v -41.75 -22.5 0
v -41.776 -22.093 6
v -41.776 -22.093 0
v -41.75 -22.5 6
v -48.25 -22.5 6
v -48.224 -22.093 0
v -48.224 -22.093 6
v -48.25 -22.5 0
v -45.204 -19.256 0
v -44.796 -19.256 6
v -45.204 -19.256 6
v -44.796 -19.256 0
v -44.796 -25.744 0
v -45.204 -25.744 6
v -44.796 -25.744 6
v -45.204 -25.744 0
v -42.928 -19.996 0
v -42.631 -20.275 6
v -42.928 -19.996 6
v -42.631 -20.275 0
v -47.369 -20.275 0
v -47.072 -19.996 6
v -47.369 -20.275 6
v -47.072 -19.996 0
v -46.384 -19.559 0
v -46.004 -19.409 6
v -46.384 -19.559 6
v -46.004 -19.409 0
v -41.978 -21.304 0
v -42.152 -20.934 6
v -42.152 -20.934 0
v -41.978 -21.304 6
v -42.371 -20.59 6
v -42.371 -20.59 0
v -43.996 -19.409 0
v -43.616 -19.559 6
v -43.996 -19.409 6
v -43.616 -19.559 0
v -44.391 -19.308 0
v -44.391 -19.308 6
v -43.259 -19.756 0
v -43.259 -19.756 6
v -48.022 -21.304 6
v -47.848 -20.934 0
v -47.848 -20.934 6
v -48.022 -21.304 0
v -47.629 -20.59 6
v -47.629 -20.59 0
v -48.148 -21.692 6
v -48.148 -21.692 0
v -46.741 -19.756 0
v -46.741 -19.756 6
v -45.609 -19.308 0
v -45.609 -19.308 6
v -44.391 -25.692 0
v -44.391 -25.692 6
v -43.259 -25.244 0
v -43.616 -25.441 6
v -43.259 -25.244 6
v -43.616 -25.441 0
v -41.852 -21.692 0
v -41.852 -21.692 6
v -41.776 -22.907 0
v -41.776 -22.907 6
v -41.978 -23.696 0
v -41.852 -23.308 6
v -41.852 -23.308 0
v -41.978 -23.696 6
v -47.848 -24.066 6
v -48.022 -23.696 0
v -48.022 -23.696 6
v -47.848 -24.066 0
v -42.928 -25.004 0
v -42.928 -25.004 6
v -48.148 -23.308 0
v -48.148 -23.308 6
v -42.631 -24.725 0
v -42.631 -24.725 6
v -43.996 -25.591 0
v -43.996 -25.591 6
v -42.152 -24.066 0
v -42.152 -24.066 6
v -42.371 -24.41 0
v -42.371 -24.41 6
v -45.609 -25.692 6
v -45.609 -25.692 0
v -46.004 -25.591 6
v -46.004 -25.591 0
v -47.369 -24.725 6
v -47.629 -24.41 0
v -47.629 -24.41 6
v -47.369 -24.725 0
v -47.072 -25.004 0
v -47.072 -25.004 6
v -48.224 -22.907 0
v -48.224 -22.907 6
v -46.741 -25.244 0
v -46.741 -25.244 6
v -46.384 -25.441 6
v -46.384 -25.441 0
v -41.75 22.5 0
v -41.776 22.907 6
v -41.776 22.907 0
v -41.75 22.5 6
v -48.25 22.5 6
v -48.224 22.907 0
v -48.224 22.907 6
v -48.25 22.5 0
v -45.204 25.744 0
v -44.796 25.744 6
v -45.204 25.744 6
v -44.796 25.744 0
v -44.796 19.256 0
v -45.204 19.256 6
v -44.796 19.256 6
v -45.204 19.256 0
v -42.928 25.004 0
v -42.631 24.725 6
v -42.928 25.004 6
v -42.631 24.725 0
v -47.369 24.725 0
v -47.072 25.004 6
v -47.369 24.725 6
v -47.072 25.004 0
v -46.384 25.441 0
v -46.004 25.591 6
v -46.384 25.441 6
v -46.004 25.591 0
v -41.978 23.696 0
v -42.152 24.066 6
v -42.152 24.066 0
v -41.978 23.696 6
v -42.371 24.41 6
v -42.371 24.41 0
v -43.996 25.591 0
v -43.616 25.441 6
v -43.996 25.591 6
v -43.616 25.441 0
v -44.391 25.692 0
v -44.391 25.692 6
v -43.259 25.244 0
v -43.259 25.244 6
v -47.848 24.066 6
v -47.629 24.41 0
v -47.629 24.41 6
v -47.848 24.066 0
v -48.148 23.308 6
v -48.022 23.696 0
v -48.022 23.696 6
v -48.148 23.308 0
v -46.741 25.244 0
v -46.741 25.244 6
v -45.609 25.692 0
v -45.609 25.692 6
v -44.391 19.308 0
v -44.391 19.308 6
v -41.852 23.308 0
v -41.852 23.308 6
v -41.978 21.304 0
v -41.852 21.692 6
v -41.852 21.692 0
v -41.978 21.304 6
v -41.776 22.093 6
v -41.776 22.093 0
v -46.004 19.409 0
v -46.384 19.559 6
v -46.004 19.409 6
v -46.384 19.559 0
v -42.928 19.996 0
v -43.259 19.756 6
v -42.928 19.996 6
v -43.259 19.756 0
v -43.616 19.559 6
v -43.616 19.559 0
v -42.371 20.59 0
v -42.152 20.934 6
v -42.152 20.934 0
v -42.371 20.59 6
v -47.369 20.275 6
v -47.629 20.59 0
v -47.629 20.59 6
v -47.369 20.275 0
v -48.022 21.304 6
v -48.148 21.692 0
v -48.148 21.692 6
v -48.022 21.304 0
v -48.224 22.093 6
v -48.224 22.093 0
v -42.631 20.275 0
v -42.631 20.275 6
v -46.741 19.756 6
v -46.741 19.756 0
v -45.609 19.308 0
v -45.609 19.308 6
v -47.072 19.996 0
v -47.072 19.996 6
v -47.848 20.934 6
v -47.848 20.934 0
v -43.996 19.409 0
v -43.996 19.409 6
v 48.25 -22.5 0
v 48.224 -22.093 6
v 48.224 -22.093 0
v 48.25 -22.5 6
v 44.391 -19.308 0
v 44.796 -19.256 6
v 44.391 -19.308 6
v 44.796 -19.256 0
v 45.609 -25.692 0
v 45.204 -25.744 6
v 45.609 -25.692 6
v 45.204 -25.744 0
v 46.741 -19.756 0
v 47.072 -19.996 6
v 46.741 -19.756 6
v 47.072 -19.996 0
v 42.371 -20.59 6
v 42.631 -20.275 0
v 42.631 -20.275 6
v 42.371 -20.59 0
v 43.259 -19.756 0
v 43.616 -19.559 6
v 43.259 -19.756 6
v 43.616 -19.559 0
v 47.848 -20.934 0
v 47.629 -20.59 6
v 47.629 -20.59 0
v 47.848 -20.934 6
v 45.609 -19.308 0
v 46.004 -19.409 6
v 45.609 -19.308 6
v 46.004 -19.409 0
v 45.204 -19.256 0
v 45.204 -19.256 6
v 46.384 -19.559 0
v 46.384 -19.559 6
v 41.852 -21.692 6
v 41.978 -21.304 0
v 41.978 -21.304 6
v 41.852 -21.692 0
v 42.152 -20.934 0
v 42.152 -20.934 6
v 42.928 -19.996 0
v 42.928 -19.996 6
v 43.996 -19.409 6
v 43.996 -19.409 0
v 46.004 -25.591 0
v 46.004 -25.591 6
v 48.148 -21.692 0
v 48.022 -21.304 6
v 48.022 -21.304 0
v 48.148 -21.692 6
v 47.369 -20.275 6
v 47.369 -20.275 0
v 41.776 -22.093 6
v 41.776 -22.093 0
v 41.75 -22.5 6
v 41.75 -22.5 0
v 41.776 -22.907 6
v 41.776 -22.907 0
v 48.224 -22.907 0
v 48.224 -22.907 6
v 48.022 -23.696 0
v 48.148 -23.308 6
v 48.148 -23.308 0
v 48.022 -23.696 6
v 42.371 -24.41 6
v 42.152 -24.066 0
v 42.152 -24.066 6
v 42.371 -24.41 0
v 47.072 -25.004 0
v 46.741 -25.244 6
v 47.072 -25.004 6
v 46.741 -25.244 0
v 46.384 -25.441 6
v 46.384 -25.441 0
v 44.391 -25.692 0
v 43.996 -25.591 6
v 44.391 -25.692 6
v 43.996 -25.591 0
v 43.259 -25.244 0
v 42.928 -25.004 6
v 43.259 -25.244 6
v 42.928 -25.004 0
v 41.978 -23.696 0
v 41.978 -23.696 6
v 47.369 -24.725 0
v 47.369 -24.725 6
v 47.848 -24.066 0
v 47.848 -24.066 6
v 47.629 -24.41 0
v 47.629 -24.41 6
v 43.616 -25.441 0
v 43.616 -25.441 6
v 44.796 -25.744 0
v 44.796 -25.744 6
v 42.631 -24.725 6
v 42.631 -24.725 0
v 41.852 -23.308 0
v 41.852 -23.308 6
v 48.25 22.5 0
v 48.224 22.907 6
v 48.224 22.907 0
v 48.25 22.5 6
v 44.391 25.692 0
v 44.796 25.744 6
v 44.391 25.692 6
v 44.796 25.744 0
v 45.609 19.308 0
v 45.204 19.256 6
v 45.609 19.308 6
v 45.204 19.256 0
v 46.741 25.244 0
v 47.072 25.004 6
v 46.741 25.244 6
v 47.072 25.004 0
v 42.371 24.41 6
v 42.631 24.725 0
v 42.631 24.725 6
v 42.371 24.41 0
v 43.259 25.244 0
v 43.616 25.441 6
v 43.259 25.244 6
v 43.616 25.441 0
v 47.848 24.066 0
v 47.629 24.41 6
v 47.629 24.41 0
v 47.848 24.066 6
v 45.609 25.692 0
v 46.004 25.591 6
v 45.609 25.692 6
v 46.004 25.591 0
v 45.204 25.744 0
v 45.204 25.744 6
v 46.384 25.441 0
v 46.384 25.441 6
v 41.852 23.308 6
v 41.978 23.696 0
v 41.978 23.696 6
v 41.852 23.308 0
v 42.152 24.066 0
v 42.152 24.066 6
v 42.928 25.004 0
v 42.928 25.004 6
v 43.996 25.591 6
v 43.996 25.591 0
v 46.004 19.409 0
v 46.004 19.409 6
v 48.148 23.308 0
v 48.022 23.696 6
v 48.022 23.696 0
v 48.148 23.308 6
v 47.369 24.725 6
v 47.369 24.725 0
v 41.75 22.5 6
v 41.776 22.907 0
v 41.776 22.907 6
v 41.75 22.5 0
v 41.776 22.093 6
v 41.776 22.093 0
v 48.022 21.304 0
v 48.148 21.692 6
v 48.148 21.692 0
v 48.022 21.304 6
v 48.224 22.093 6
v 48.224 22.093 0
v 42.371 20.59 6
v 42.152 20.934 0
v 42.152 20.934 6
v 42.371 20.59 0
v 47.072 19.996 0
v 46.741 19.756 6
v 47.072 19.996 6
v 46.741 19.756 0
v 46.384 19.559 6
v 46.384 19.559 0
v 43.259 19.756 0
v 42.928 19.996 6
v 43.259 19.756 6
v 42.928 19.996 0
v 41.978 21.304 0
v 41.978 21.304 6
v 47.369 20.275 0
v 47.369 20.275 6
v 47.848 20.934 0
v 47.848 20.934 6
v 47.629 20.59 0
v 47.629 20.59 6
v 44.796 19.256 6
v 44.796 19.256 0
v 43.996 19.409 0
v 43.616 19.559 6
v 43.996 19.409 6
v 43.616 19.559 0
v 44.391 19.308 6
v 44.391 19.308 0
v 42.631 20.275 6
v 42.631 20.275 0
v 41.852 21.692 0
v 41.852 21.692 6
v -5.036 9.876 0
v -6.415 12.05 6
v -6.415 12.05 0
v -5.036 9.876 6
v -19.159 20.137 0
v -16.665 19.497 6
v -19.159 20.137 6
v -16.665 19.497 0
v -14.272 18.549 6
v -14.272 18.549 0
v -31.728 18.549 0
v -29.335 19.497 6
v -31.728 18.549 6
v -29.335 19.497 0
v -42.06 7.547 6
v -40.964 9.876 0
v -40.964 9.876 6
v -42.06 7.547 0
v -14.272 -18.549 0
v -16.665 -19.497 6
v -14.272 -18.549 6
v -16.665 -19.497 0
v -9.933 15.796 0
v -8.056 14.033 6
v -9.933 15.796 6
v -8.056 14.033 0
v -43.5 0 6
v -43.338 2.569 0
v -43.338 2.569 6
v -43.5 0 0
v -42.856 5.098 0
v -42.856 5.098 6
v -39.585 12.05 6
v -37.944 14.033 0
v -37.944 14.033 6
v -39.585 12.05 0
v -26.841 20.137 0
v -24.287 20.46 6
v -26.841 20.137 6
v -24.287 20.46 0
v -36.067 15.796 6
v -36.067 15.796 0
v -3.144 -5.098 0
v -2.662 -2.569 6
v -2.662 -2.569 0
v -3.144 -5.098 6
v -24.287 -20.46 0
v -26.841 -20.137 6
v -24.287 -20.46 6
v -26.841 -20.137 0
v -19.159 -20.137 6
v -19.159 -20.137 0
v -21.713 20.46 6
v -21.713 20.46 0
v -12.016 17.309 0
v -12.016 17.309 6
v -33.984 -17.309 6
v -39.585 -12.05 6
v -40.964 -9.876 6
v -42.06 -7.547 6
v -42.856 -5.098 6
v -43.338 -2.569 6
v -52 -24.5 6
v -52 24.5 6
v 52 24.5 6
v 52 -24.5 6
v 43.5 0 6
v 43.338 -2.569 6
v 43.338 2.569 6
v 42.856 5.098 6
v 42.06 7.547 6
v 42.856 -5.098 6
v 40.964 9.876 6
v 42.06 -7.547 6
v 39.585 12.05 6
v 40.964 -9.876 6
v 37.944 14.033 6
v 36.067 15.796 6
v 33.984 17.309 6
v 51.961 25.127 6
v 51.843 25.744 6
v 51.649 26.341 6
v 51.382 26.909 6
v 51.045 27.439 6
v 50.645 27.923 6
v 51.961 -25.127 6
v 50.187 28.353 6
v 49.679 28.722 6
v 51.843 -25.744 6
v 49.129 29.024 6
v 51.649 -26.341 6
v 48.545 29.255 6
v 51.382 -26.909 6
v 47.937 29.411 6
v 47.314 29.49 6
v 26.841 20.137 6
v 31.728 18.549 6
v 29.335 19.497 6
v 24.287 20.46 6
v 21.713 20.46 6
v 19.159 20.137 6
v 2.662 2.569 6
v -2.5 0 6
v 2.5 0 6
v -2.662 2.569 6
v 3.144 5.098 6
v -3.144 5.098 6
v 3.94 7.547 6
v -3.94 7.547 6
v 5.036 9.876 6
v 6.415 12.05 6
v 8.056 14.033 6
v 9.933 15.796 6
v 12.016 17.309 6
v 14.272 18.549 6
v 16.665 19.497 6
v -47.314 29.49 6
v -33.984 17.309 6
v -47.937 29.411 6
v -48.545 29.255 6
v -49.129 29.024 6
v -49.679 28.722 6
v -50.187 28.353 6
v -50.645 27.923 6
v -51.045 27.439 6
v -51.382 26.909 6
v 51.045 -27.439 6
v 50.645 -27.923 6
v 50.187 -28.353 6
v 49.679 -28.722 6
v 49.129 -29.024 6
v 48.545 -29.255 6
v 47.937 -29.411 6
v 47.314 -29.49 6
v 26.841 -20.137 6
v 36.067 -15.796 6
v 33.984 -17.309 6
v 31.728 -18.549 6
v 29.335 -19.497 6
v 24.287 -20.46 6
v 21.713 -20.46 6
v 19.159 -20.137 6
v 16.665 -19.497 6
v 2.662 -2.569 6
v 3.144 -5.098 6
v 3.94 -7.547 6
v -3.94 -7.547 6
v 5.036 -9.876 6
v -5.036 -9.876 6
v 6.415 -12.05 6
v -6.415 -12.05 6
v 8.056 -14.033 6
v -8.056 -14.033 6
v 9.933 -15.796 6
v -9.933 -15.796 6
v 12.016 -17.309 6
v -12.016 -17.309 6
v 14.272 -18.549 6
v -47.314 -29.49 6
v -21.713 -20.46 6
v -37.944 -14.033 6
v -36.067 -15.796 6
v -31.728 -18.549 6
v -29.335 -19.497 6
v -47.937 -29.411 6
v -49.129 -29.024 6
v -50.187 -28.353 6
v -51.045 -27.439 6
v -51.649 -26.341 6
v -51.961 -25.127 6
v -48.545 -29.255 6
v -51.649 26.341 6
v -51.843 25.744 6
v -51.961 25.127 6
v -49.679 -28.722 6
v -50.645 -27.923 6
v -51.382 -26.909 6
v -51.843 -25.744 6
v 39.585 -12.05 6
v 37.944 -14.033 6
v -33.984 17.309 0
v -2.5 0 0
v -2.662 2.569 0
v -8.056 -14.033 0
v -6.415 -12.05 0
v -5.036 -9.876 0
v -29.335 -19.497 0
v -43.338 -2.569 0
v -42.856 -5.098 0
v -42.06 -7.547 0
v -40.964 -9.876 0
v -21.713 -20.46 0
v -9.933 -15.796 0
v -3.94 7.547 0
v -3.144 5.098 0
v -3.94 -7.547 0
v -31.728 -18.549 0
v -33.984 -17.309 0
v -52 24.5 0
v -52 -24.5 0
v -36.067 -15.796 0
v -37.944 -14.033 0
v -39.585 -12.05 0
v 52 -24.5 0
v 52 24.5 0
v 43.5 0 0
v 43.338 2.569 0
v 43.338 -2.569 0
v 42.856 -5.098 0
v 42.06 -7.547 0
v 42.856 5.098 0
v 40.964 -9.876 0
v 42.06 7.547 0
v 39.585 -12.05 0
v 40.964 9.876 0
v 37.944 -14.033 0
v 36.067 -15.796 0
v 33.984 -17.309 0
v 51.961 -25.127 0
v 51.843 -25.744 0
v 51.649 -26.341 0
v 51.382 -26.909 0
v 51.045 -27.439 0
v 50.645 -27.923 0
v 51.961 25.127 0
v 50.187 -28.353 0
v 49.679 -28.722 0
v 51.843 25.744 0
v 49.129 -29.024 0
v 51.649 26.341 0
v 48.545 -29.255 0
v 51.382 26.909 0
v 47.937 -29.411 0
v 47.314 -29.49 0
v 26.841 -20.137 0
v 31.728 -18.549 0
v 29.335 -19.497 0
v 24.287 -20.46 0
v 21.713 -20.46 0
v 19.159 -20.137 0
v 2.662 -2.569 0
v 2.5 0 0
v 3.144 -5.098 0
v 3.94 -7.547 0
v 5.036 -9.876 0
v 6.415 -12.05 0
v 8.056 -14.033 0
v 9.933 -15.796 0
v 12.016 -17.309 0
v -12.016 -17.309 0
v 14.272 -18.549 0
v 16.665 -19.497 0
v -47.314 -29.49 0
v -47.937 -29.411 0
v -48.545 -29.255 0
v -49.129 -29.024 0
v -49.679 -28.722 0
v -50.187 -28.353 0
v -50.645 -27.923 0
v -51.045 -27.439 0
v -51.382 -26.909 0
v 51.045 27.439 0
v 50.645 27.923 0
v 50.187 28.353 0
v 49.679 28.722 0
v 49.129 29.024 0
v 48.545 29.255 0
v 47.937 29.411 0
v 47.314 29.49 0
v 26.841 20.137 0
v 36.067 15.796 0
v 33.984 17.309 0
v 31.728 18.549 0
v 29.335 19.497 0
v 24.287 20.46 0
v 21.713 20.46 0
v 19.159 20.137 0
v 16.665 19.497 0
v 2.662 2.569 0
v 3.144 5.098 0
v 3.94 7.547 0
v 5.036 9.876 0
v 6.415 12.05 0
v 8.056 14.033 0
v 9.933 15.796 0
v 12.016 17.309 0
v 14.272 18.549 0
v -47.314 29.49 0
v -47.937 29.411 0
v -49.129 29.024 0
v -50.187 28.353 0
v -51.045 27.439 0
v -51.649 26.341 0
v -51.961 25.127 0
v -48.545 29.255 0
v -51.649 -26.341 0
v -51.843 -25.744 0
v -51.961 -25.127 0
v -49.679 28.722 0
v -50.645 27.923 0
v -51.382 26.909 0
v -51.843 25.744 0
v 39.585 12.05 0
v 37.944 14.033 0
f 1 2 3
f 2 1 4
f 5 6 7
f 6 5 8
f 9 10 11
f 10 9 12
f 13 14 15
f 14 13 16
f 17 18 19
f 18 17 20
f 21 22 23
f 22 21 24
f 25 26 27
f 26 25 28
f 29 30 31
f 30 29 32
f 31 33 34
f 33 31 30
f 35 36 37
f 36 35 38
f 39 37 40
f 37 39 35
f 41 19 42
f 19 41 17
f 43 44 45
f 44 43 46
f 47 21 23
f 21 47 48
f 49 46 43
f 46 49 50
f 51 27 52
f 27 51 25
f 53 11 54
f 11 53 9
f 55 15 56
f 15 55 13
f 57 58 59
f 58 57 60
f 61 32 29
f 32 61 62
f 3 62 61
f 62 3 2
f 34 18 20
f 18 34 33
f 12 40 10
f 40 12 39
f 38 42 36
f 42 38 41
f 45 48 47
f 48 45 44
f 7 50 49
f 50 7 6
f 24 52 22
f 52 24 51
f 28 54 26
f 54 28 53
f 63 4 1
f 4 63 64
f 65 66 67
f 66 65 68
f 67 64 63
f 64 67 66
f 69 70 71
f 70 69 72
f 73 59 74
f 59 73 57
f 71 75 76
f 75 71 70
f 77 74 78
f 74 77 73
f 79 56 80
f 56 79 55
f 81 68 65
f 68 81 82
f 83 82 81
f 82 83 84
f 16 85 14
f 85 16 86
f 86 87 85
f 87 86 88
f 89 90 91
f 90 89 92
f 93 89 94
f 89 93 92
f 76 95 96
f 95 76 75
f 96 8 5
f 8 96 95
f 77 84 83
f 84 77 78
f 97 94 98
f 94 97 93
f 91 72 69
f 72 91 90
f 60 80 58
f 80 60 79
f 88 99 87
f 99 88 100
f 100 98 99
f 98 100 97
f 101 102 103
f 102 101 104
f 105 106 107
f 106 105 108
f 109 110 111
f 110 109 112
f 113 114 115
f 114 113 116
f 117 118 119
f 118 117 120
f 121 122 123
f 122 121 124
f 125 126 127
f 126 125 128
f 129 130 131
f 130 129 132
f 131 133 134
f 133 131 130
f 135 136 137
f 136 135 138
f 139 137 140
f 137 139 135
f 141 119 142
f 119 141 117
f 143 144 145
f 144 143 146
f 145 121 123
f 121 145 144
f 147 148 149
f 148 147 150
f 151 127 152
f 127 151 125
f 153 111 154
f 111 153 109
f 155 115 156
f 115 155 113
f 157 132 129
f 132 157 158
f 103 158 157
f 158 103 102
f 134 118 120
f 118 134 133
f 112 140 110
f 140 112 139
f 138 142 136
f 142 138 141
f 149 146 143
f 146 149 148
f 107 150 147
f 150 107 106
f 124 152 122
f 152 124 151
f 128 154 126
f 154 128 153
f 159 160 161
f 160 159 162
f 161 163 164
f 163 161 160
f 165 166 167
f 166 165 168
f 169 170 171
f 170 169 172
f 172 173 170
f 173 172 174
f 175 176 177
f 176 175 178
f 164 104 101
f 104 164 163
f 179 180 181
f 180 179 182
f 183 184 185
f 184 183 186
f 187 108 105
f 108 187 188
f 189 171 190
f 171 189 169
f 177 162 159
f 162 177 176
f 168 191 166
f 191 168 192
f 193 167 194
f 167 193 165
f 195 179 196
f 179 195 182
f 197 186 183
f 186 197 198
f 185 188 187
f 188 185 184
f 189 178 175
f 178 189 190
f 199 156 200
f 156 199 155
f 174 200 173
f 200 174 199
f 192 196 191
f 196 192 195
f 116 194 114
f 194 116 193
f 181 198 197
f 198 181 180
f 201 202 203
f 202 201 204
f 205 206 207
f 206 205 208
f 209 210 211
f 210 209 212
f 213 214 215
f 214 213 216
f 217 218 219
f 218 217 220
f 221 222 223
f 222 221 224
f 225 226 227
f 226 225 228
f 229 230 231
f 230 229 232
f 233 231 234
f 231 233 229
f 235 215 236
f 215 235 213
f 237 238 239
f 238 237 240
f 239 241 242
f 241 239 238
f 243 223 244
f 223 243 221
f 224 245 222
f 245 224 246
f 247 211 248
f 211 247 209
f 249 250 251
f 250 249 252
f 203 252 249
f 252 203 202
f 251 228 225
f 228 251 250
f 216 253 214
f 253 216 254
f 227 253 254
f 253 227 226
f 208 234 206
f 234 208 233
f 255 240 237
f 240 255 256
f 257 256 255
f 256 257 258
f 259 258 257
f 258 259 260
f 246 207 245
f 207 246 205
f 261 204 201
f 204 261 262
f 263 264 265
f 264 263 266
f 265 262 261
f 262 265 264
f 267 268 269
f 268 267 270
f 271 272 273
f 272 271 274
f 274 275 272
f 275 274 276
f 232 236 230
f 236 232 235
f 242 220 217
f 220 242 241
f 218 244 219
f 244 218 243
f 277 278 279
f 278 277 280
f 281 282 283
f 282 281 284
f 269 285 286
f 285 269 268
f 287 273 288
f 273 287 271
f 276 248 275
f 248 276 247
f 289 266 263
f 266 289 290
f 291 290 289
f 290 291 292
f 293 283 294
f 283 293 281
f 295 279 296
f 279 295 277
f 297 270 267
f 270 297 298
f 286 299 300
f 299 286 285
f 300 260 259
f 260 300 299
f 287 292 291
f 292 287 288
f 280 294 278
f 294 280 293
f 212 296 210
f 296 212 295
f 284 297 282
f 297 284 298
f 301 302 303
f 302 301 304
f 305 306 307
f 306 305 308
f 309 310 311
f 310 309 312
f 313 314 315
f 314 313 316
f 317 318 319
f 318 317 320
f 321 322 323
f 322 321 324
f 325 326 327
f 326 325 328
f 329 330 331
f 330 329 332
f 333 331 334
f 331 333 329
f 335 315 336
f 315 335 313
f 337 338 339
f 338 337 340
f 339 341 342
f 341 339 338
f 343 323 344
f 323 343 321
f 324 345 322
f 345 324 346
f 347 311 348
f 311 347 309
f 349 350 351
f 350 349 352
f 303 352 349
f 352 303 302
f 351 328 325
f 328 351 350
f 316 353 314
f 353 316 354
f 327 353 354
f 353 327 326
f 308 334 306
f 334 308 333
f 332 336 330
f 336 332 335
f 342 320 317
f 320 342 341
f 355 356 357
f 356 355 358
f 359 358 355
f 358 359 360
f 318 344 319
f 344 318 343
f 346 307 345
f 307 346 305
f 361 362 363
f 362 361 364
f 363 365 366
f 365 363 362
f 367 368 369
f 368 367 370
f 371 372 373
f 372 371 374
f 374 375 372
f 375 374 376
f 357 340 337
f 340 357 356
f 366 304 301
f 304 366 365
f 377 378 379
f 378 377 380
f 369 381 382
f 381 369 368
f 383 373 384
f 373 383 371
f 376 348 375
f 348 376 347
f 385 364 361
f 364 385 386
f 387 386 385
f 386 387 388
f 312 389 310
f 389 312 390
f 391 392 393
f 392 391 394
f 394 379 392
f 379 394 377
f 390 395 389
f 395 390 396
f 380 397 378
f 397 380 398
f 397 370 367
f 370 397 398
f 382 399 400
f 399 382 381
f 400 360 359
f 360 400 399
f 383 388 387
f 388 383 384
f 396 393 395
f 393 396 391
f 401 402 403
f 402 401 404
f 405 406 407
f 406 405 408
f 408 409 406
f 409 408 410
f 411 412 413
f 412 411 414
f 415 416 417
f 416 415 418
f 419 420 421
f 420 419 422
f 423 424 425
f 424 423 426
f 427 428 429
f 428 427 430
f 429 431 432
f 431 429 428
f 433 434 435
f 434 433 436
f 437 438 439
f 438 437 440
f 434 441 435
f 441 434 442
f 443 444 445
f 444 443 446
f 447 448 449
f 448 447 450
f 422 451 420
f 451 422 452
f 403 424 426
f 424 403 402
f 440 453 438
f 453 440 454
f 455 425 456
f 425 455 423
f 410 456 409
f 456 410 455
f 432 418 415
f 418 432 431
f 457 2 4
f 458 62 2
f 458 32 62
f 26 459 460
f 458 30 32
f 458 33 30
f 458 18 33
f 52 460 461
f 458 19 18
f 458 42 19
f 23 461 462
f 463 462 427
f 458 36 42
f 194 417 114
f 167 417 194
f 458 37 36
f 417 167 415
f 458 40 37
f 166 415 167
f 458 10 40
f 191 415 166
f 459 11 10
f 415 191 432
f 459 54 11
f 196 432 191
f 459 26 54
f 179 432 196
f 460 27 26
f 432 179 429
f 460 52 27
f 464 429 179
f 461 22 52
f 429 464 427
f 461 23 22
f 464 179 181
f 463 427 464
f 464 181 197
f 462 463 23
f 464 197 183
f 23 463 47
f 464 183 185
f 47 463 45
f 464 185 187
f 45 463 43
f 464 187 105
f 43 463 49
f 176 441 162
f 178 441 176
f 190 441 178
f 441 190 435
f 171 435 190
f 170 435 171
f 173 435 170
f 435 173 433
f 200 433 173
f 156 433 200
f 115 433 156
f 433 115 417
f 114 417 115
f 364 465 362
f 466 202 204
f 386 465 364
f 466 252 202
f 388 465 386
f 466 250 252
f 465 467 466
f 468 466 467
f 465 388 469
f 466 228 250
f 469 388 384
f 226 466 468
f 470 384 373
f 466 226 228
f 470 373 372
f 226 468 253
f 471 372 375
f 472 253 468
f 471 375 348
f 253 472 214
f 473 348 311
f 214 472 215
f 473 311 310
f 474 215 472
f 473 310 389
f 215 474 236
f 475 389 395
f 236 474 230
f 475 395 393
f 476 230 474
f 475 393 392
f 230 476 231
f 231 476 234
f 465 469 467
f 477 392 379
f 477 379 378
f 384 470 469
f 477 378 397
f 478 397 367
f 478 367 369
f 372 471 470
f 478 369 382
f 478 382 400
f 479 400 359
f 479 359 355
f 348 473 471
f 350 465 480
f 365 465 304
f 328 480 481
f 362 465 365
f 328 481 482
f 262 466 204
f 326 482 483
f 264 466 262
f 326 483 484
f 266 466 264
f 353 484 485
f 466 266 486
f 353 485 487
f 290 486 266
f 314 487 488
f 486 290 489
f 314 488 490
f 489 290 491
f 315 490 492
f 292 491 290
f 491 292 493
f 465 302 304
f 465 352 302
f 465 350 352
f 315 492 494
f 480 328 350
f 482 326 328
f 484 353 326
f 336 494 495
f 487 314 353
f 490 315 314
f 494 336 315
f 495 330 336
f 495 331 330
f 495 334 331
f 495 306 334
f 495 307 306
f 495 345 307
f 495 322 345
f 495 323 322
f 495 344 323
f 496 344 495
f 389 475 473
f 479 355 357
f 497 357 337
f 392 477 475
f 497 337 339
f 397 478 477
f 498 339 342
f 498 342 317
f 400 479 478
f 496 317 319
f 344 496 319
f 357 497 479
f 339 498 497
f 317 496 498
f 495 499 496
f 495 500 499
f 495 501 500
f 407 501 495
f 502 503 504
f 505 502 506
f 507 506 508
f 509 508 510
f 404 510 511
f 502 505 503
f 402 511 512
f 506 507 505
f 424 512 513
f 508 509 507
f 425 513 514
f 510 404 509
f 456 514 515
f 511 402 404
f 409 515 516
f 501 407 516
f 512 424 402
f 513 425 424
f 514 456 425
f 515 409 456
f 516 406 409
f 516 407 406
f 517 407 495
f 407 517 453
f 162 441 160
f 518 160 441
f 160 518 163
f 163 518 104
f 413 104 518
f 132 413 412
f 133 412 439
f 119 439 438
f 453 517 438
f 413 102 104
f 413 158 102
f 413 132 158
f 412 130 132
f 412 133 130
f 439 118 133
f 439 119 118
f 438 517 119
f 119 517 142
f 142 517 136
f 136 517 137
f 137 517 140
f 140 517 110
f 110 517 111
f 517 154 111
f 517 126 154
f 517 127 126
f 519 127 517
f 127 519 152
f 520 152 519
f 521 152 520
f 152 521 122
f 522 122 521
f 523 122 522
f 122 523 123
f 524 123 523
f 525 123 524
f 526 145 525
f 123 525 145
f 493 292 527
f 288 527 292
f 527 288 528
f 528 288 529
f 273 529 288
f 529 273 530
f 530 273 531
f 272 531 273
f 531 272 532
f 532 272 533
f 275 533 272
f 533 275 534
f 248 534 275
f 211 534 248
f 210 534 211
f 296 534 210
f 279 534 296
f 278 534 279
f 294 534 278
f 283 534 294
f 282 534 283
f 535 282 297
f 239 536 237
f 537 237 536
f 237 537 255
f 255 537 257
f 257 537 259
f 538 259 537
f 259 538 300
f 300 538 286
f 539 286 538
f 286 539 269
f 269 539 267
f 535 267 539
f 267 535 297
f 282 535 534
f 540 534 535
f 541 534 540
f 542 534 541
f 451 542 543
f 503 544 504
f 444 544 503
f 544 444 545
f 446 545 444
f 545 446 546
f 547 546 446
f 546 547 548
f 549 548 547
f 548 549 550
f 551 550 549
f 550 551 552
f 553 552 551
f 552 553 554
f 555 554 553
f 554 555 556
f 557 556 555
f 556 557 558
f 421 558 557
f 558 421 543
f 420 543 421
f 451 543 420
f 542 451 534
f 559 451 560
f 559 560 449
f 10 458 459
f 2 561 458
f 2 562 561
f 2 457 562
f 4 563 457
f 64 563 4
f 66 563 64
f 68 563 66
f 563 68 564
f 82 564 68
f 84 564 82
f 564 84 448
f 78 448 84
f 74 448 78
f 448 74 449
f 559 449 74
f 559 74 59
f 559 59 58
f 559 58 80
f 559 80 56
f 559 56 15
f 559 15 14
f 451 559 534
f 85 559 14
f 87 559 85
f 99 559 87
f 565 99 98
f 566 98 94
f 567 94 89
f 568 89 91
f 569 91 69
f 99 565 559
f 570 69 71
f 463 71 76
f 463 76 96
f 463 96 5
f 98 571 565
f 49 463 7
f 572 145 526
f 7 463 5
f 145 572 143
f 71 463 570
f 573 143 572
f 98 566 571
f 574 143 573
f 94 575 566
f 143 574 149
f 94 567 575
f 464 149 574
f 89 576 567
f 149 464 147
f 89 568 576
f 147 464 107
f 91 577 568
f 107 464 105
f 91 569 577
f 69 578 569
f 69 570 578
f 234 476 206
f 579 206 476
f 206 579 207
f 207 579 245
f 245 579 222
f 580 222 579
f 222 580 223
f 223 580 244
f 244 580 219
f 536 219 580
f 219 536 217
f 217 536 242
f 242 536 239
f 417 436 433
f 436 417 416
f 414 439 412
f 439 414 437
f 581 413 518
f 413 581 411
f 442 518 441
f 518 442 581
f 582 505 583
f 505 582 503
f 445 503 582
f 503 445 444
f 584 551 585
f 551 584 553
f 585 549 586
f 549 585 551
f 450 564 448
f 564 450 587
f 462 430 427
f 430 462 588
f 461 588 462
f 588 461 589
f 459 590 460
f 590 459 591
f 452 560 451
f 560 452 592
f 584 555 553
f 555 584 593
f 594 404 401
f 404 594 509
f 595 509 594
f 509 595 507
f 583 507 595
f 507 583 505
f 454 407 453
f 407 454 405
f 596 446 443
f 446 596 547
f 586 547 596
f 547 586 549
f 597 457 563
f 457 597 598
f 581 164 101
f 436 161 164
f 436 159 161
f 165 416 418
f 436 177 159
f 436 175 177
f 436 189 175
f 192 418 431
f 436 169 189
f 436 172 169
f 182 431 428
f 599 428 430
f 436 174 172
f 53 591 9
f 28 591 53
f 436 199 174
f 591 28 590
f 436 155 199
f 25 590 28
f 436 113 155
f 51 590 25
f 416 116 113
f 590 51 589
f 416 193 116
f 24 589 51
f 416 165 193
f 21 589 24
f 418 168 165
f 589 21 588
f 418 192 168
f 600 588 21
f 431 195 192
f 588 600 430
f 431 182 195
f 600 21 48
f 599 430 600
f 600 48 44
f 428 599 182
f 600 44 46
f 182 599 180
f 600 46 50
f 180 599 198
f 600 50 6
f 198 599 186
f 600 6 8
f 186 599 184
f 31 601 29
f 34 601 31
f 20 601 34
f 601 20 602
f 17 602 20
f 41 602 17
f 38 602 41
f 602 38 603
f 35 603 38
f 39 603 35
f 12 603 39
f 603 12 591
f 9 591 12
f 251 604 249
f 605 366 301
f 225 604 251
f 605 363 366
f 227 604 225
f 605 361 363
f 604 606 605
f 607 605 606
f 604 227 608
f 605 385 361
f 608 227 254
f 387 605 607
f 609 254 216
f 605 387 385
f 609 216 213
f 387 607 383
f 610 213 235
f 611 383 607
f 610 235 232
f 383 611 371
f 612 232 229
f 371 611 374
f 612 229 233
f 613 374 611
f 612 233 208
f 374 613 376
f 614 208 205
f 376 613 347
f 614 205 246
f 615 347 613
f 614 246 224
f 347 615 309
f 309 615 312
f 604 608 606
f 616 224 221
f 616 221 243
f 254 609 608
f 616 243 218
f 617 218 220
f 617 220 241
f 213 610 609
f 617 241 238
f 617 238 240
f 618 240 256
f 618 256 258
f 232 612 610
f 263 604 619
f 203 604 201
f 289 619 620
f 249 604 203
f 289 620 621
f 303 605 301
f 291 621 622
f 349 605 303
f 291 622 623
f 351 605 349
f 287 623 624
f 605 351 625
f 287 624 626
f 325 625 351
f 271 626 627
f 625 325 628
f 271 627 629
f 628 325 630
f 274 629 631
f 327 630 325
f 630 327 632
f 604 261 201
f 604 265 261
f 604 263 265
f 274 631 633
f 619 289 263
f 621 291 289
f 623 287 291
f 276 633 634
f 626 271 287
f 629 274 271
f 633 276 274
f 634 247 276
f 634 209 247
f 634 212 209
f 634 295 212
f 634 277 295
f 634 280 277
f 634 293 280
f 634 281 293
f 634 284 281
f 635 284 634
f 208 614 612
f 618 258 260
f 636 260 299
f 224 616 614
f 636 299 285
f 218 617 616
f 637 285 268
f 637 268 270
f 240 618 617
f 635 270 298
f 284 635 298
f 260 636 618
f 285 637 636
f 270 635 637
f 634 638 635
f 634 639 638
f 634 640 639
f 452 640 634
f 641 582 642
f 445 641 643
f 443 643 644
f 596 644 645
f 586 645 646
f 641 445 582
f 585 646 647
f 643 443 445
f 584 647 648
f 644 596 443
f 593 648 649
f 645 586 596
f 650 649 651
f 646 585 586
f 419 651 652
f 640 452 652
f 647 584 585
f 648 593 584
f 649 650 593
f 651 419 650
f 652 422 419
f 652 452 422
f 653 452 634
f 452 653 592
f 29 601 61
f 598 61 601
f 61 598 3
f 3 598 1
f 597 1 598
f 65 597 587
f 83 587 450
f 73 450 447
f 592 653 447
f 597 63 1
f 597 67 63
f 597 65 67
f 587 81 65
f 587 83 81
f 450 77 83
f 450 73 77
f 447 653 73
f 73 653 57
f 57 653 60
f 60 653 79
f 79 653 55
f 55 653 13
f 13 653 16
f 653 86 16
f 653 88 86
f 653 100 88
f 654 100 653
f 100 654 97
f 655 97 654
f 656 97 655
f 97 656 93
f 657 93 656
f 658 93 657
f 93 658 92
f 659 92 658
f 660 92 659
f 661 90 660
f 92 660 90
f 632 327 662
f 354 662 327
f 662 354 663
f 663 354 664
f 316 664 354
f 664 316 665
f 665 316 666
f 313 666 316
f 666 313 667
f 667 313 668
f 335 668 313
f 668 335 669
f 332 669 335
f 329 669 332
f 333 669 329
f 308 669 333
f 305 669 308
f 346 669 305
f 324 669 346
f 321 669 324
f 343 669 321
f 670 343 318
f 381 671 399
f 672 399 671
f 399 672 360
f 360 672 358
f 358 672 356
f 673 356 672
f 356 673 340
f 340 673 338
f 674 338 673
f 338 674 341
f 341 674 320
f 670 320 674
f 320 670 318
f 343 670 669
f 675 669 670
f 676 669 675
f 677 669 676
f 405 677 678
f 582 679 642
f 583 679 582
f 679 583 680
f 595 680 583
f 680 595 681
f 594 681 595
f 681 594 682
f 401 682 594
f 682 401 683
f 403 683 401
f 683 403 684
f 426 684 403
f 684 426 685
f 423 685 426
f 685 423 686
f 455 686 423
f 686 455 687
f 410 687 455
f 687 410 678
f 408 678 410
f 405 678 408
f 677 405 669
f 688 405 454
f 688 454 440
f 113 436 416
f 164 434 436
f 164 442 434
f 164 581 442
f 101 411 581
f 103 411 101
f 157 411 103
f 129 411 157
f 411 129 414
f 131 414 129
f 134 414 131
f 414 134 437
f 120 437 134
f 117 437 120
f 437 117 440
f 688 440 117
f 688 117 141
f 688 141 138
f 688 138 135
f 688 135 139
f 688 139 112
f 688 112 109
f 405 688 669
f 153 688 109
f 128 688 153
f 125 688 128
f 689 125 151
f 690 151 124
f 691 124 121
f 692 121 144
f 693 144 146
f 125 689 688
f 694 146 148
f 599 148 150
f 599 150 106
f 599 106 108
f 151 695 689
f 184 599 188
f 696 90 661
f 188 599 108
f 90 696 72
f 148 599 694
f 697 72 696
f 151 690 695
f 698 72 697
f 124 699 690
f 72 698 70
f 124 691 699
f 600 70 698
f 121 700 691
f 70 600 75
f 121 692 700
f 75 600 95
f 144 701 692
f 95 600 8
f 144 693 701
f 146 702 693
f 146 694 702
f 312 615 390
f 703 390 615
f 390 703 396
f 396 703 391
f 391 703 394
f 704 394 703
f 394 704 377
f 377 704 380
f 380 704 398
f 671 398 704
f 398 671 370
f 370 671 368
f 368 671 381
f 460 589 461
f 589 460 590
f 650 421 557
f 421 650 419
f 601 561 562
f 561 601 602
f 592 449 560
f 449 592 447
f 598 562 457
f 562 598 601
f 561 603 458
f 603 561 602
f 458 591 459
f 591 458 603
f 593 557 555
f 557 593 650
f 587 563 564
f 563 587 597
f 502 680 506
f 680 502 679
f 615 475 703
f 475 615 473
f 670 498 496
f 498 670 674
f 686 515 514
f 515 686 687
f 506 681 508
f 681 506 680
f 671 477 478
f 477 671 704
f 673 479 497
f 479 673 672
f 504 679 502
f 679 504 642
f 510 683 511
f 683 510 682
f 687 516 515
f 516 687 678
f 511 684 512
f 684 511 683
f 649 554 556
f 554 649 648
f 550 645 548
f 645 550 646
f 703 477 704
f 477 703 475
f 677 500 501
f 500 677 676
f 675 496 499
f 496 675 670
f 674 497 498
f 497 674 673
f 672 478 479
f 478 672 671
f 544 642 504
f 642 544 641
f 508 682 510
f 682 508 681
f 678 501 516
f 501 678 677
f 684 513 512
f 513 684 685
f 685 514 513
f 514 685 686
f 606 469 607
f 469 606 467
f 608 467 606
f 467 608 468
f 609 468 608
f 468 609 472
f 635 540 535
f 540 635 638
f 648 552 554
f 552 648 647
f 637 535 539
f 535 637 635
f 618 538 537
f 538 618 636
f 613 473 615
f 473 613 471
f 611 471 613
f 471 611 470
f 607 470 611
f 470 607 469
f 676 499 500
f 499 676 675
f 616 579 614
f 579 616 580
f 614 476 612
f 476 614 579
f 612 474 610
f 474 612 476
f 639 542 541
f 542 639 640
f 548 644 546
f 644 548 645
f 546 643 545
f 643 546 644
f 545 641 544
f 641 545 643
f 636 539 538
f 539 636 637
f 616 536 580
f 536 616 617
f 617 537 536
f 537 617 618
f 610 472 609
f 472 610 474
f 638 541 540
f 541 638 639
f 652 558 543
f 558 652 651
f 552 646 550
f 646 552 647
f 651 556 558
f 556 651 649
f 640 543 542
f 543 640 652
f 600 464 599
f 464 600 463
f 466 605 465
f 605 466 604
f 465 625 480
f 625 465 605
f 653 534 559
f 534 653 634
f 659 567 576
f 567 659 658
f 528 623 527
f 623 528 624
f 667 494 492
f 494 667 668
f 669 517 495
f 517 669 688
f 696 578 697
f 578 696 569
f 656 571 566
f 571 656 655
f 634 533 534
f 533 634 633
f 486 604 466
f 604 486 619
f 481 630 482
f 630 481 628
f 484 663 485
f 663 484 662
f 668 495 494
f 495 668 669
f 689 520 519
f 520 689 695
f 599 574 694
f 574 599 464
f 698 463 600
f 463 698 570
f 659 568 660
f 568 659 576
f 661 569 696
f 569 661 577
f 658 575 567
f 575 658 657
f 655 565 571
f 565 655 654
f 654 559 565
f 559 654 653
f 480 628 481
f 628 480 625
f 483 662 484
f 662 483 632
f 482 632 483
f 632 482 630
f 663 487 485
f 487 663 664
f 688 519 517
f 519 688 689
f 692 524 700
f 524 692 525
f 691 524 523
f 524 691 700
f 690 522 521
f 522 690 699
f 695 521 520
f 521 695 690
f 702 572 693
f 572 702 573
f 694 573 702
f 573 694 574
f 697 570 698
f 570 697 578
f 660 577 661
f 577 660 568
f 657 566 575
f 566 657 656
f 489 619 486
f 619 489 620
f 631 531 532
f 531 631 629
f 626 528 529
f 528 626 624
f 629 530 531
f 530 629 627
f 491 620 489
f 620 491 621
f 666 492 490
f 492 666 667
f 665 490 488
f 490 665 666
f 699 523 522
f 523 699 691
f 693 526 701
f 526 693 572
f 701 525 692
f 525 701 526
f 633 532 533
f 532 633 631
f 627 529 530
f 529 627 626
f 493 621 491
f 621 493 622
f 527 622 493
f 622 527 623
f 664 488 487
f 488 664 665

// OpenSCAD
$fn = 50;


difference() {
	union() {
		hull() {
			translate(v = [-47.0000000000, 24.5000000000, 0]) {
				cylinder(h = 6, r = 5);
			}
			translate(v = [47.0000000000, 24.5000000000, 0]) {
				cylinder(h = 6, r = 5);
			}
			translate(v = [-47.0000000000, -24.5000000000, 0]) {
				cylinder(h = 6, r = 5);
			}
			translate(v = [47.0000000000, -24.5000000000, 0]) {
				cylinder(h = 6, r = 5);
			}
		}
	}
	union() {
		#translate(v = [-45.0000000000, -22.5000000000, -100.0000000000]) {
			cylinder(h = 200, r = 3.2500000000);
		}
		#translate(v = [-45.0000000000, 22.5000000000, -100.0000000000]) {
			cylinder(h = 200, r = 3.2500000000);
		}
		#translate(v = [45.0000000000, -22.5000000000, -100.0000000000]) {
			cylinder(h = 200, r = 3.2500000000);
		}
		#translate(v = [45.0000000000, 22.5000000000, -100.0000000000]) {
			cylinder(h = 200, r = 3.2500000000);
		}
		#translate(v = [-23.0000000000, 0, 0]) {
			cylinder(h = 6, r = 20.5000000000);
		}
		#translate(v = [23.0000000000, 0, 0]) {
			cylinder(h = 6, r = 20.5000000000);
		}
	}
}
